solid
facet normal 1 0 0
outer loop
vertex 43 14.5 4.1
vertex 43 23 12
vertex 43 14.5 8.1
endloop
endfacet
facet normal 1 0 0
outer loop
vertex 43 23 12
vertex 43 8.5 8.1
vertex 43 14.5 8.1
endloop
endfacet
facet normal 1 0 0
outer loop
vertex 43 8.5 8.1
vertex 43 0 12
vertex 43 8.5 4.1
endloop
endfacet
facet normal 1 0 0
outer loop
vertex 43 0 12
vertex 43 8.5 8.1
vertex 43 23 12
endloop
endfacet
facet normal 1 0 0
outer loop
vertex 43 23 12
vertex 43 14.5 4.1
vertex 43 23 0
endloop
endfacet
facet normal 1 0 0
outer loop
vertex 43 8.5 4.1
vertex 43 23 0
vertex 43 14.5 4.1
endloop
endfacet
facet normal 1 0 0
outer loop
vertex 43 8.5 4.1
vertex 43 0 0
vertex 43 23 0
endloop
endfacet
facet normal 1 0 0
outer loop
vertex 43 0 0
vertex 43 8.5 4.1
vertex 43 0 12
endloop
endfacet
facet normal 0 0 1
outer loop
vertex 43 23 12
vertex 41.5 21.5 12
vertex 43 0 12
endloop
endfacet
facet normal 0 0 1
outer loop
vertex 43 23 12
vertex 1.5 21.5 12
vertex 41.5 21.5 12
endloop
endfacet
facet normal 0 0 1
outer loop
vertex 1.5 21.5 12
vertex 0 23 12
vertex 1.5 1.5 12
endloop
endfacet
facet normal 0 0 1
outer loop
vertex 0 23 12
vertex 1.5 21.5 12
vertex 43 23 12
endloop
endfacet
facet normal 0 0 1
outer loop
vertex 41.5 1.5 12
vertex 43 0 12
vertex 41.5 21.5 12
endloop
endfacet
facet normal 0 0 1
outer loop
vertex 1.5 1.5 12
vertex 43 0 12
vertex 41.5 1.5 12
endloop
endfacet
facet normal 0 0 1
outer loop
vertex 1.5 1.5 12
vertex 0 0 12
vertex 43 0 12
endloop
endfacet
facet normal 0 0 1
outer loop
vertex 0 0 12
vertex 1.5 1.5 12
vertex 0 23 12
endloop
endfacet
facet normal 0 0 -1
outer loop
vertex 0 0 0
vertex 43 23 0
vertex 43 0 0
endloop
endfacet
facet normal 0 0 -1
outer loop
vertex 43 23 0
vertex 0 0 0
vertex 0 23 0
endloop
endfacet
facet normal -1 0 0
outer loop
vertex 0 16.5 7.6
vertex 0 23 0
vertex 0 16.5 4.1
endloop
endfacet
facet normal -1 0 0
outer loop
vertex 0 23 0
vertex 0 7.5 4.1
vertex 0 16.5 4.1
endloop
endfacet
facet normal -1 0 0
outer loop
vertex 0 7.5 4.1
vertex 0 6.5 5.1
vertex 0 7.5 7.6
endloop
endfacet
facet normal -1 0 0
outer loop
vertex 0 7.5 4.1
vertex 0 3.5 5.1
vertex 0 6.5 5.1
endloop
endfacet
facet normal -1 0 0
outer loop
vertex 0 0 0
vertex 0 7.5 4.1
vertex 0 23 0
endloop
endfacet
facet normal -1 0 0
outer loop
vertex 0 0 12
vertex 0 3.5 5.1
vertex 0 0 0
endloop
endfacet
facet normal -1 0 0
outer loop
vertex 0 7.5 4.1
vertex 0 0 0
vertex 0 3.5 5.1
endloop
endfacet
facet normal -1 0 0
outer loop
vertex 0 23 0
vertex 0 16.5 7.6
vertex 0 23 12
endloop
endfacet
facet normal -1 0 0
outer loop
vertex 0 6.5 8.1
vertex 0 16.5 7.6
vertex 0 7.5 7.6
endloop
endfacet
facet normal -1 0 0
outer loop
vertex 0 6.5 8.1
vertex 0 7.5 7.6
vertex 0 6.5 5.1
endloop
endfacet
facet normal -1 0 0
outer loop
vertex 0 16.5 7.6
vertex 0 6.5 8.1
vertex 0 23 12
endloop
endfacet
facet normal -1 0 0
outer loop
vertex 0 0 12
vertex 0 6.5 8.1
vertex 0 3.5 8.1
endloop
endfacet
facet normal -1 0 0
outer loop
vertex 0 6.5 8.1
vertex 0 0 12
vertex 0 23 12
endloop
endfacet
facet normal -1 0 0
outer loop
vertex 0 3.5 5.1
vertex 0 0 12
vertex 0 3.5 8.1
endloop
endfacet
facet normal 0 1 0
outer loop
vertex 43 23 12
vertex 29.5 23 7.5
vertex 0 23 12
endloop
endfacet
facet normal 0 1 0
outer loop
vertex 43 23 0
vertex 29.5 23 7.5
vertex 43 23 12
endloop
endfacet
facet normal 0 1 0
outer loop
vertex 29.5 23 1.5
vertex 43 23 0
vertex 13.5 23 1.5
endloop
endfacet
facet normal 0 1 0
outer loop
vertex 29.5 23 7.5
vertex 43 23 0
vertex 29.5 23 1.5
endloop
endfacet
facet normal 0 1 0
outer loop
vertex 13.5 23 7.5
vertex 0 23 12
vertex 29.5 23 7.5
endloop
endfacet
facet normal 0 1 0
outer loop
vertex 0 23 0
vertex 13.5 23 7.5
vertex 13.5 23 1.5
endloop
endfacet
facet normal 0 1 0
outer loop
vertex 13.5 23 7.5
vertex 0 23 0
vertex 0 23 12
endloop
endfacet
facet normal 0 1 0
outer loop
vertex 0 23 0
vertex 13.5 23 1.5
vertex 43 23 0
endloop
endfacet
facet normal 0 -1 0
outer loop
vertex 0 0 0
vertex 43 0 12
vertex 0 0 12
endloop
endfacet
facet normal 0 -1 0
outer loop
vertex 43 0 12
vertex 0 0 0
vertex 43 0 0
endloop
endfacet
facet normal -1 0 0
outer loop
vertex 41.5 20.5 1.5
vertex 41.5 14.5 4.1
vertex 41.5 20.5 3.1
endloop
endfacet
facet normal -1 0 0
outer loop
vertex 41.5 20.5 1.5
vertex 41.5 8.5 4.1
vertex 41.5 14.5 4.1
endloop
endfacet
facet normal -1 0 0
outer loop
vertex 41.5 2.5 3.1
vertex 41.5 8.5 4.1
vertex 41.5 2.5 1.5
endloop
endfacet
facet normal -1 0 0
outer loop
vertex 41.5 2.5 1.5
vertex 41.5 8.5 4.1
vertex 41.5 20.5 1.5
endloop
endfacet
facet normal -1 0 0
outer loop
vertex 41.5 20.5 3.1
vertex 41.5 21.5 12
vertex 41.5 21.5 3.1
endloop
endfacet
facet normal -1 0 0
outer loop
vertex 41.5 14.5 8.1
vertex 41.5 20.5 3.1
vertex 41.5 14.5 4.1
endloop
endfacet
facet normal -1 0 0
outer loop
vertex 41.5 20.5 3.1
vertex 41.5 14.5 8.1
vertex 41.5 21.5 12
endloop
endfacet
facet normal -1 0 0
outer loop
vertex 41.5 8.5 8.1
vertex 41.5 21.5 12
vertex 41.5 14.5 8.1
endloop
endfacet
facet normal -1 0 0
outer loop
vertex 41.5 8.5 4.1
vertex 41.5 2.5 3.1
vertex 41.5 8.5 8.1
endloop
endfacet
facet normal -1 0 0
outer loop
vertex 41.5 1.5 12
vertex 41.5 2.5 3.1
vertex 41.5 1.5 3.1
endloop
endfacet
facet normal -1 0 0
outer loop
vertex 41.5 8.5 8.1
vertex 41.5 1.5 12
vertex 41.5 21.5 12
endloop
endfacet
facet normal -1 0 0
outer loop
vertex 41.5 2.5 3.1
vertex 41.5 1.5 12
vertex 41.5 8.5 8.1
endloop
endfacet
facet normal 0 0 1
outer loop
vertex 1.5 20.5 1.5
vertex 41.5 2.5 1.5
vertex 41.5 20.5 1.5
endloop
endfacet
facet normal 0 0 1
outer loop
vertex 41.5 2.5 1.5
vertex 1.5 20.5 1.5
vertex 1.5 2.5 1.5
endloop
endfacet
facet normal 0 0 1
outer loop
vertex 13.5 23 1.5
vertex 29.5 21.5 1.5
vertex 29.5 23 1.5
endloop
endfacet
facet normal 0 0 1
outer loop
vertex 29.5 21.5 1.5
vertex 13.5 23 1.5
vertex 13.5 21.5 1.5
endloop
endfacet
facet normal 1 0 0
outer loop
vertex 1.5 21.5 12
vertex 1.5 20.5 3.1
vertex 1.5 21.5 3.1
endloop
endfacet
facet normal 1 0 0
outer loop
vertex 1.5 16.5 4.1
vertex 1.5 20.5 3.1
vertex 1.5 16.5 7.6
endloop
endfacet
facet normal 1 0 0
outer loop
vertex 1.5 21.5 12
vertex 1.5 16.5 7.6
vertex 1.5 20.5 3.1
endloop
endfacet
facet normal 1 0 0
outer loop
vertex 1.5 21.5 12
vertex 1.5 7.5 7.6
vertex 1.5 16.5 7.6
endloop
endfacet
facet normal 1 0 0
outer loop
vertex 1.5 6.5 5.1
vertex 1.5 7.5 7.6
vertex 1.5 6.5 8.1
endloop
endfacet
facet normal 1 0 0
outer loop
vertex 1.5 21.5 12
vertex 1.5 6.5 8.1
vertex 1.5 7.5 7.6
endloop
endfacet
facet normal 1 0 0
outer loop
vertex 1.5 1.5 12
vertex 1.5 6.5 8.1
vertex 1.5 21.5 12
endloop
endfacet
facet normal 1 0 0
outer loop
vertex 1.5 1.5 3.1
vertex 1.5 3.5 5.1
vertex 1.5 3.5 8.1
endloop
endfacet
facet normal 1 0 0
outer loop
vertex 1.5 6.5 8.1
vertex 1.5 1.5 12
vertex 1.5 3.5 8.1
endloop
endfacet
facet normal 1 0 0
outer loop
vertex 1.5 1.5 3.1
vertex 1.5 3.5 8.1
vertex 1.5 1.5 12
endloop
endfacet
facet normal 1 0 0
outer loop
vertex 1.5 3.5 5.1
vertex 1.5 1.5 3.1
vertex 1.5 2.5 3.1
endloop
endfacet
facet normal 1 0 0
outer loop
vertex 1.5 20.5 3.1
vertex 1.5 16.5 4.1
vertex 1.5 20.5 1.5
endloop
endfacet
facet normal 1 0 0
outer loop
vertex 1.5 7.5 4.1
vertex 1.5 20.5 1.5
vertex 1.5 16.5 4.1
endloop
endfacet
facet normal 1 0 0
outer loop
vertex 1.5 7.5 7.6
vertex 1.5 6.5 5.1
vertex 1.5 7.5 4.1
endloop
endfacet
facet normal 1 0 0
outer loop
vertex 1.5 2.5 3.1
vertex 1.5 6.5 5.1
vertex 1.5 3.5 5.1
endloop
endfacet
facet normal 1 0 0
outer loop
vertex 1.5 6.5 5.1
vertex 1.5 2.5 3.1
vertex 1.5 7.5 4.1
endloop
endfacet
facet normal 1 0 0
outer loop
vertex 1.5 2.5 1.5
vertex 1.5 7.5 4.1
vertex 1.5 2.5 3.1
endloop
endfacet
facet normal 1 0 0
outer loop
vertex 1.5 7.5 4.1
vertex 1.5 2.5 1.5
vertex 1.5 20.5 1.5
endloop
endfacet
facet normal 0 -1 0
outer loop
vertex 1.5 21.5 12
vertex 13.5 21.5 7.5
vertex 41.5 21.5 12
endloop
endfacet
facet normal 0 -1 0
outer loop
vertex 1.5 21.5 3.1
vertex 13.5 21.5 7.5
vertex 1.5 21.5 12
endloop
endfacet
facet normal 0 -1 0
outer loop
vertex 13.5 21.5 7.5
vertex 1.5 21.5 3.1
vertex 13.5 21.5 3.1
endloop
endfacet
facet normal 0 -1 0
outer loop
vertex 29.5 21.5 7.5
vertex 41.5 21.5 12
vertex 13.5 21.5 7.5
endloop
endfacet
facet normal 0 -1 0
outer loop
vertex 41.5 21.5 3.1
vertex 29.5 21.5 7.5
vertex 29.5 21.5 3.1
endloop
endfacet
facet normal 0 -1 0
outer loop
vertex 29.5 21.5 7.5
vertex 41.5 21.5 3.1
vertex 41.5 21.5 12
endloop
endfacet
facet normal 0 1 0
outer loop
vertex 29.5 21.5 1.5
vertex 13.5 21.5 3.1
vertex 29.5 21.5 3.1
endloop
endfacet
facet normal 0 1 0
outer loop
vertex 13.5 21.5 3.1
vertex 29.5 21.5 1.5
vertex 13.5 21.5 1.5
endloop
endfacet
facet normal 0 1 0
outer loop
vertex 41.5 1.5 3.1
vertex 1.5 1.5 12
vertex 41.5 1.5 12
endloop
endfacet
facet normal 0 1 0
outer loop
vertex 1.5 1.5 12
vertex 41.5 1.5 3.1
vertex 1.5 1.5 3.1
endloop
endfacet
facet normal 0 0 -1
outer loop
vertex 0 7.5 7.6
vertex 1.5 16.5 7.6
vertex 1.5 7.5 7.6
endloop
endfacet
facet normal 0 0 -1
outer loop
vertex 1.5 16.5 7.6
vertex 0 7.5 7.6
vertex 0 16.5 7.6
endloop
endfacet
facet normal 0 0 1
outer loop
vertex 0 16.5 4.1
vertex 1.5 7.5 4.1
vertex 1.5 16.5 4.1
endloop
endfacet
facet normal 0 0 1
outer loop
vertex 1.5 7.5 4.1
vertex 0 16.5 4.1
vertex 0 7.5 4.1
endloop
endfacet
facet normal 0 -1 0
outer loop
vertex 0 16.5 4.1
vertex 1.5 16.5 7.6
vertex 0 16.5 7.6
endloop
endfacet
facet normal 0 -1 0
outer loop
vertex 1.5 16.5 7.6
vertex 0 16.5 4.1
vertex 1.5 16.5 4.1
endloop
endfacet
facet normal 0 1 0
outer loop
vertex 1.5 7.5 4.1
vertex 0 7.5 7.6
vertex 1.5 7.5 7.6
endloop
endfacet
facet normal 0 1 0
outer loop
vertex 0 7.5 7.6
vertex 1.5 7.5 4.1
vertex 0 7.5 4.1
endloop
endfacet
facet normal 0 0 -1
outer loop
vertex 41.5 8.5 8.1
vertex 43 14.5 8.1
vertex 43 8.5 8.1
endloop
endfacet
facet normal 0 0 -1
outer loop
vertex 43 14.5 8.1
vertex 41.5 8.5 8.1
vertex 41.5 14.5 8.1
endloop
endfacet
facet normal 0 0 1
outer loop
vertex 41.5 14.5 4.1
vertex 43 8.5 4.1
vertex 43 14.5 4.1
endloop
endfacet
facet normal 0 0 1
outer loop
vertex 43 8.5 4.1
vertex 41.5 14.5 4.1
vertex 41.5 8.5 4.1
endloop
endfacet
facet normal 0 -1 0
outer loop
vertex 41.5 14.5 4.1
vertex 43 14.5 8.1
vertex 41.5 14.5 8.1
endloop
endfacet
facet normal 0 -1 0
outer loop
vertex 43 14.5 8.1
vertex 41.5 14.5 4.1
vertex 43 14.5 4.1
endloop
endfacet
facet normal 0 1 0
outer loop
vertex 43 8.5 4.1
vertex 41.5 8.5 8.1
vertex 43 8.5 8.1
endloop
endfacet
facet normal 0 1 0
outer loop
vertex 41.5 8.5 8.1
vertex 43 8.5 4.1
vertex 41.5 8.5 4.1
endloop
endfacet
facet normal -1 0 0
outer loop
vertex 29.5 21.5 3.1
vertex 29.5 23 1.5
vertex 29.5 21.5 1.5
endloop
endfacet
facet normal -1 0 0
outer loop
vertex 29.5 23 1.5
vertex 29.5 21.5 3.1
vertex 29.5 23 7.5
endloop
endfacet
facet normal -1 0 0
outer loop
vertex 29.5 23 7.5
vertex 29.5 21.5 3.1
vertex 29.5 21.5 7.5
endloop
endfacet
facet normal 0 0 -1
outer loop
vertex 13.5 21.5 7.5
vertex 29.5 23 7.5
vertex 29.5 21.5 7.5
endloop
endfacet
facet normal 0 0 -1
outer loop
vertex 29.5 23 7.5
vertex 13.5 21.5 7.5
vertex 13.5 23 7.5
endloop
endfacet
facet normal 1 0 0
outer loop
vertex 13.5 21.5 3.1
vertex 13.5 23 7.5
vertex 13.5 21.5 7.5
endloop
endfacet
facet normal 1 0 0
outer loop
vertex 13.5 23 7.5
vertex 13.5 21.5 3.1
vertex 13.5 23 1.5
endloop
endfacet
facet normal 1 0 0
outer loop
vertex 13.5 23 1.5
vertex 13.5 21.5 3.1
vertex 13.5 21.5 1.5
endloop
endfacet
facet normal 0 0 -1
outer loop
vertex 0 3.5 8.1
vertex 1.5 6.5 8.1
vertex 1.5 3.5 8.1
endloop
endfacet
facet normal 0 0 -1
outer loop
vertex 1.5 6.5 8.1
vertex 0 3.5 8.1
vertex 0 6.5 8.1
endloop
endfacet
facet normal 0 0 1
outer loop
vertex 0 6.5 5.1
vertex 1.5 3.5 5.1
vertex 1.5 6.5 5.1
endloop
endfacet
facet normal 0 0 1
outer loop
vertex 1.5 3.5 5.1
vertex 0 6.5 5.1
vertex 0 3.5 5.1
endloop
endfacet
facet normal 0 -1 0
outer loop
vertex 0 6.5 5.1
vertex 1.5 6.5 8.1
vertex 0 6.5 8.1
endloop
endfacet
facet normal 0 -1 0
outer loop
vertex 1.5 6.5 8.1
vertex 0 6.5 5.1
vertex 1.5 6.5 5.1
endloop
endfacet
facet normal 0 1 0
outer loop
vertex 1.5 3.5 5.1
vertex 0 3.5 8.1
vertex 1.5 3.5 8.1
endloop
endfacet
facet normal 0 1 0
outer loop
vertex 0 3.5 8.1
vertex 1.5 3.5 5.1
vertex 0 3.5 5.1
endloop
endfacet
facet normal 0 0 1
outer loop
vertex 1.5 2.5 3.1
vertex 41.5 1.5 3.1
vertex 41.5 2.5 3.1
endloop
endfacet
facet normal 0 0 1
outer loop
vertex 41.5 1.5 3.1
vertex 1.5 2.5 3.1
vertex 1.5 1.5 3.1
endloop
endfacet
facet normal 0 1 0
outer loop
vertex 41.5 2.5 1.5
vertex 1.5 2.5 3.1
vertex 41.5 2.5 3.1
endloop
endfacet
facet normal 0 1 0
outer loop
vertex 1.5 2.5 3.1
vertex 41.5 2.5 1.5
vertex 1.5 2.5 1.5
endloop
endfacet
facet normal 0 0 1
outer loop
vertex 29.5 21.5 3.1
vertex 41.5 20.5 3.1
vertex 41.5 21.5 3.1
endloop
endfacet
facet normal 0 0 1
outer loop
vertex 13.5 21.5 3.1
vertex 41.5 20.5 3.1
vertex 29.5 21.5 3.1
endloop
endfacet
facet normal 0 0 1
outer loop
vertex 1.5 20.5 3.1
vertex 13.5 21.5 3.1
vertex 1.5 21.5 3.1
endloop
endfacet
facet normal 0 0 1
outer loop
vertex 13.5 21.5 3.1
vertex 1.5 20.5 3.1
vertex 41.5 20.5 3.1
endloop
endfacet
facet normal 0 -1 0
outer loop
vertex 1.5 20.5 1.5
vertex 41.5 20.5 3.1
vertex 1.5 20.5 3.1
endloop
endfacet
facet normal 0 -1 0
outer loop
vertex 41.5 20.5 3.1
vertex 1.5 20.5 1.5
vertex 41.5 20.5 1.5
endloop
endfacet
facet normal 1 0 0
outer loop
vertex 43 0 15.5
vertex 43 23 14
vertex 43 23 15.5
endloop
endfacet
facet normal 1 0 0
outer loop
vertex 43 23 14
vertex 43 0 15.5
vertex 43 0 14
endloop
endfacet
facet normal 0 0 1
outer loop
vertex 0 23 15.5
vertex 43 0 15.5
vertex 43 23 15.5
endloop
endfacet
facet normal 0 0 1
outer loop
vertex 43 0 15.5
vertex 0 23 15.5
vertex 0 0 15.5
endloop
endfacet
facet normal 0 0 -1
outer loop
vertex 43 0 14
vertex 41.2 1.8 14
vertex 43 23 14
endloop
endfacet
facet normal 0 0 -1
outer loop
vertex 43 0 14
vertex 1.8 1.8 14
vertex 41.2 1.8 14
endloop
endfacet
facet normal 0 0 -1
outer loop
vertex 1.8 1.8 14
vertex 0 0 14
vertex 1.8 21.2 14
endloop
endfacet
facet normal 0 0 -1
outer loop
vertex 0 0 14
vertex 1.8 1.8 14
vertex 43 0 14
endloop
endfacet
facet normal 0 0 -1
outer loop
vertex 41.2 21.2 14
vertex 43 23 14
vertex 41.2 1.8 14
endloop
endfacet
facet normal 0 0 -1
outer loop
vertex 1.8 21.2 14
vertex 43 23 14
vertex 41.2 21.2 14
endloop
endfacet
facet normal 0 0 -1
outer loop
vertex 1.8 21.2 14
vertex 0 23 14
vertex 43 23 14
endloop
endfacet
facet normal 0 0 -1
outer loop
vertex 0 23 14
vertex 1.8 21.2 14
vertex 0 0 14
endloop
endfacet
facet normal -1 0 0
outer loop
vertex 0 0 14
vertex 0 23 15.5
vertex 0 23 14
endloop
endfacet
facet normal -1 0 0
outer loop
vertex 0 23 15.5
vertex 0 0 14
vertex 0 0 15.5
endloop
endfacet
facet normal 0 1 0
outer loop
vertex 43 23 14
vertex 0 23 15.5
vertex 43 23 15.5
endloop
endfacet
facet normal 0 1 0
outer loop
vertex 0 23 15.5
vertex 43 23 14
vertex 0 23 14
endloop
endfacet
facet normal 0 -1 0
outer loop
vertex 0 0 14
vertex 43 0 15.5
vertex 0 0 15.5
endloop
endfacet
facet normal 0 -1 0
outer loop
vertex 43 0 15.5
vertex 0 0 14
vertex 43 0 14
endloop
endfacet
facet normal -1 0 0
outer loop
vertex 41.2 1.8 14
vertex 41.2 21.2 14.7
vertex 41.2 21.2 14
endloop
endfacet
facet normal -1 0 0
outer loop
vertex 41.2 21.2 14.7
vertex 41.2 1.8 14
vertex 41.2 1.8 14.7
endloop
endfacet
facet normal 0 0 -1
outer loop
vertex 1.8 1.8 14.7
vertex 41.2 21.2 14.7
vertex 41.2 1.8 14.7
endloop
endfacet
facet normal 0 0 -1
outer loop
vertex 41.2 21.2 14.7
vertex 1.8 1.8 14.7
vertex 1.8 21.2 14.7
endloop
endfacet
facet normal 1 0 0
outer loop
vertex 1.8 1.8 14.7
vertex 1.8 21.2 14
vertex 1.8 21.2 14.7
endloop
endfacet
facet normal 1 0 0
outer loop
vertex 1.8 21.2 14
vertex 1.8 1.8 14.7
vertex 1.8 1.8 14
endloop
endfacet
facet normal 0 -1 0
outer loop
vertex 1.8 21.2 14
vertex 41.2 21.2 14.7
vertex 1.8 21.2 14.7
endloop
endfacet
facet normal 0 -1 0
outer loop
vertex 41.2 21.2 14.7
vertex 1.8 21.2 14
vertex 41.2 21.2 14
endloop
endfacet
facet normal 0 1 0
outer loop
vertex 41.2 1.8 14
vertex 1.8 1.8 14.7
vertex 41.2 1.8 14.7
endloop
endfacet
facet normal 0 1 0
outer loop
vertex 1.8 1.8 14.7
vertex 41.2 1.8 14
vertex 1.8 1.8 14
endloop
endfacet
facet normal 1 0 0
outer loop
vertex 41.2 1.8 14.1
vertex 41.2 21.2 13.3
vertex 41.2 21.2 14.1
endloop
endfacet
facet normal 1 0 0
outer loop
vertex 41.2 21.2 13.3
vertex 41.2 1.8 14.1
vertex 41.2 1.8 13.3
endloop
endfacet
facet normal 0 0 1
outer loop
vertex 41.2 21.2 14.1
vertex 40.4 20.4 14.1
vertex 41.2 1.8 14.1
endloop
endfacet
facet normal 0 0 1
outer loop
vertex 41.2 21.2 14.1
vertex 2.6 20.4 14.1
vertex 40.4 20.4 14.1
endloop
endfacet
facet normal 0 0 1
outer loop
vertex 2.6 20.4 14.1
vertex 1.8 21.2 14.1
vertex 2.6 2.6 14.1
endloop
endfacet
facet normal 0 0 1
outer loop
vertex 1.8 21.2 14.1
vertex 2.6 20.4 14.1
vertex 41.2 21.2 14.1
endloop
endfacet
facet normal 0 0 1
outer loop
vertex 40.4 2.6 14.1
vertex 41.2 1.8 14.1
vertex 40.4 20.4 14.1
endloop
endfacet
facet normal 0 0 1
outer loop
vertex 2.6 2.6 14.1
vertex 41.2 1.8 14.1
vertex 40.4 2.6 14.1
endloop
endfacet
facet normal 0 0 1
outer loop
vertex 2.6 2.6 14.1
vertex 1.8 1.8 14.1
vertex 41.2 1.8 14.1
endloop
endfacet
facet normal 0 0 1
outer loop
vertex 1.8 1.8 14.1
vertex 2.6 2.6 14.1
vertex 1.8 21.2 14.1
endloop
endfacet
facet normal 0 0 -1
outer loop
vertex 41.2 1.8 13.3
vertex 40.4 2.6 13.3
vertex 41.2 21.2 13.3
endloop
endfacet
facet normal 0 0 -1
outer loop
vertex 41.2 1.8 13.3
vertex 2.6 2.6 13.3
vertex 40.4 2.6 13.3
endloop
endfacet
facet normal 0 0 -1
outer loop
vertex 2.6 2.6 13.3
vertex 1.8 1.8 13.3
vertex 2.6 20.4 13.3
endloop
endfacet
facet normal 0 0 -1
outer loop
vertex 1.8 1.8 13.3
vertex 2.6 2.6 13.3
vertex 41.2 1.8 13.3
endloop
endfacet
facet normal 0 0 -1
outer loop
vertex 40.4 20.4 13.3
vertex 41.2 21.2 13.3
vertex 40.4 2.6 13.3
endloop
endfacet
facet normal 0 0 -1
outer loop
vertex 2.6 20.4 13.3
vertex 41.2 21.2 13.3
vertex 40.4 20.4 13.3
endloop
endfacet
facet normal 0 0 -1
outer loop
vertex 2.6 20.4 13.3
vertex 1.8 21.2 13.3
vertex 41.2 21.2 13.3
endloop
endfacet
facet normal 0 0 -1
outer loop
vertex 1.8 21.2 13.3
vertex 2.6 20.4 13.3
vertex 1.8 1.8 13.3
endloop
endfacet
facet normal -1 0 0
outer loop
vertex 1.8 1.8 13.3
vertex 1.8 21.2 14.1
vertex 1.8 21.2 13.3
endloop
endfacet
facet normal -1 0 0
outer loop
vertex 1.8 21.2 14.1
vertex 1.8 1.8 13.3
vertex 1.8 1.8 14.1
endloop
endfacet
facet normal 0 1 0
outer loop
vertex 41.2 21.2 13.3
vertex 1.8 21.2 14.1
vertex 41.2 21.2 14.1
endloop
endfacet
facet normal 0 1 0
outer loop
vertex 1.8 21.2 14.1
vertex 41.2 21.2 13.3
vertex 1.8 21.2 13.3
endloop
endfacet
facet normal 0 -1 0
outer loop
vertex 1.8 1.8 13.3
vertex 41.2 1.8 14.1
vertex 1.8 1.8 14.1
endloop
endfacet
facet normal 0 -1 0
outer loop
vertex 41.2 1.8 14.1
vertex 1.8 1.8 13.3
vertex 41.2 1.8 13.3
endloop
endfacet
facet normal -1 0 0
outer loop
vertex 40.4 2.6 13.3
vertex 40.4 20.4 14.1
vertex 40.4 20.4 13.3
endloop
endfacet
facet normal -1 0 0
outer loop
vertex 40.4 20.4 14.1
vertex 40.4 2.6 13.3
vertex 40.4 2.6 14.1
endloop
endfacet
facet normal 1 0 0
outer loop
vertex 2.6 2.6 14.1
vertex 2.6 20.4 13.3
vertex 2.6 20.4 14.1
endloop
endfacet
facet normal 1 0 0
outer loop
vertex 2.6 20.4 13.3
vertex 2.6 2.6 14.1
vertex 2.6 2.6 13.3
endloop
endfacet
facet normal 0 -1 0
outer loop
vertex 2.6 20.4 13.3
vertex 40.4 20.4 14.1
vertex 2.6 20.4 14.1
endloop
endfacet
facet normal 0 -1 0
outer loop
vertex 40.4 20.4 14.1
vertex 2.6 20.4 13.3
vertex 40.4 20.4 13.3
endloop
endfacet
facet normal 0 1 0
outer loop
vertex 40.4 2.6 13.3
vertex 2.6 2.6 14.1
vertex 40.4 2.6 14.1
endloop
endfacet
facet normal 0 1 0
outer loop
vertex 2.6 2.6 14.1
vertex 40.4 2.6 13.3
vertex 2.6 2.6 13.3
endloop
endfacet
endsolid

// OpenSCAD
// RWC Power Module Case (2U: 40×20mm)
$fn = 30;

// Dimensions
pcb_w = 40;
pcb_d = 20;
pcb_h = 1.6;
wall = 1.5;
case_h = 12; // tall for 18650
lid_h = 1.5;
tol = 0.3;

// 18650 battery holder cutout
bat_w = 20;
bat_d = 18.5;

module base() {
    difference() {
        // Outer shell
        cube([pcb_w + wall*2, pcb_d + wall*2, case_h]);
        // Inner cavity
        translate([wall, wall, wall])
            cube([pcb_w, pcb_d, case_h]);
        // USB-C port (front)
        translate([-0.1, wall + 6, wall + pcb_h + 1])
            cube([wall + 0.2, 9, 3.5]);
        // Switch slot (right side)
        translate([pcb_w + wall - 0.1, wall + 7, wall + pcb_h + 1])
            cube([wall + 0.2, 6, 4]);
        // Pogo pin slot (back)
        translate([wall + 12, pcb_d + wall - 0.1, wall])
            cube([16, wall + 0.2, 6]);
        // LED window
        translate([-0.1, wall + 2, wall + pcb_h + 2])
            cube([wall + 0.2, 3, 3]);
    }
    // PCB ledges
    for (y = [wall, wall + pcb_d - 1])
        translate([wall, y, wall])
            cube([pcb_w, 1, pcb_h]);
}

module lid() {
    translate([0, 0, case_h + 2]) {
        difference() {
            cube([pcb_w + wall*2, pcb_d + wall*2, lid_h]);
            // Snap fit inner lip
            translate([wall + tol, wall + tol, -0.1])
                cube([pcb_w - tol*2, pcb_d - tol*2, 0.8]);
        }
        // Snap lip
        translate([wall + tol, wall + tol, -0.7])
            difference() {
                cube([pcb_w - tol*2, pcb_d - tol*2, 0.8]);
                translate([0.8, 0.8, -0.1])
                    cube([pcb_w - tol*2 - 1.6, pcb_d - tol*2 - 1.6, 1]);
            }
    }
}

base();
lid();
